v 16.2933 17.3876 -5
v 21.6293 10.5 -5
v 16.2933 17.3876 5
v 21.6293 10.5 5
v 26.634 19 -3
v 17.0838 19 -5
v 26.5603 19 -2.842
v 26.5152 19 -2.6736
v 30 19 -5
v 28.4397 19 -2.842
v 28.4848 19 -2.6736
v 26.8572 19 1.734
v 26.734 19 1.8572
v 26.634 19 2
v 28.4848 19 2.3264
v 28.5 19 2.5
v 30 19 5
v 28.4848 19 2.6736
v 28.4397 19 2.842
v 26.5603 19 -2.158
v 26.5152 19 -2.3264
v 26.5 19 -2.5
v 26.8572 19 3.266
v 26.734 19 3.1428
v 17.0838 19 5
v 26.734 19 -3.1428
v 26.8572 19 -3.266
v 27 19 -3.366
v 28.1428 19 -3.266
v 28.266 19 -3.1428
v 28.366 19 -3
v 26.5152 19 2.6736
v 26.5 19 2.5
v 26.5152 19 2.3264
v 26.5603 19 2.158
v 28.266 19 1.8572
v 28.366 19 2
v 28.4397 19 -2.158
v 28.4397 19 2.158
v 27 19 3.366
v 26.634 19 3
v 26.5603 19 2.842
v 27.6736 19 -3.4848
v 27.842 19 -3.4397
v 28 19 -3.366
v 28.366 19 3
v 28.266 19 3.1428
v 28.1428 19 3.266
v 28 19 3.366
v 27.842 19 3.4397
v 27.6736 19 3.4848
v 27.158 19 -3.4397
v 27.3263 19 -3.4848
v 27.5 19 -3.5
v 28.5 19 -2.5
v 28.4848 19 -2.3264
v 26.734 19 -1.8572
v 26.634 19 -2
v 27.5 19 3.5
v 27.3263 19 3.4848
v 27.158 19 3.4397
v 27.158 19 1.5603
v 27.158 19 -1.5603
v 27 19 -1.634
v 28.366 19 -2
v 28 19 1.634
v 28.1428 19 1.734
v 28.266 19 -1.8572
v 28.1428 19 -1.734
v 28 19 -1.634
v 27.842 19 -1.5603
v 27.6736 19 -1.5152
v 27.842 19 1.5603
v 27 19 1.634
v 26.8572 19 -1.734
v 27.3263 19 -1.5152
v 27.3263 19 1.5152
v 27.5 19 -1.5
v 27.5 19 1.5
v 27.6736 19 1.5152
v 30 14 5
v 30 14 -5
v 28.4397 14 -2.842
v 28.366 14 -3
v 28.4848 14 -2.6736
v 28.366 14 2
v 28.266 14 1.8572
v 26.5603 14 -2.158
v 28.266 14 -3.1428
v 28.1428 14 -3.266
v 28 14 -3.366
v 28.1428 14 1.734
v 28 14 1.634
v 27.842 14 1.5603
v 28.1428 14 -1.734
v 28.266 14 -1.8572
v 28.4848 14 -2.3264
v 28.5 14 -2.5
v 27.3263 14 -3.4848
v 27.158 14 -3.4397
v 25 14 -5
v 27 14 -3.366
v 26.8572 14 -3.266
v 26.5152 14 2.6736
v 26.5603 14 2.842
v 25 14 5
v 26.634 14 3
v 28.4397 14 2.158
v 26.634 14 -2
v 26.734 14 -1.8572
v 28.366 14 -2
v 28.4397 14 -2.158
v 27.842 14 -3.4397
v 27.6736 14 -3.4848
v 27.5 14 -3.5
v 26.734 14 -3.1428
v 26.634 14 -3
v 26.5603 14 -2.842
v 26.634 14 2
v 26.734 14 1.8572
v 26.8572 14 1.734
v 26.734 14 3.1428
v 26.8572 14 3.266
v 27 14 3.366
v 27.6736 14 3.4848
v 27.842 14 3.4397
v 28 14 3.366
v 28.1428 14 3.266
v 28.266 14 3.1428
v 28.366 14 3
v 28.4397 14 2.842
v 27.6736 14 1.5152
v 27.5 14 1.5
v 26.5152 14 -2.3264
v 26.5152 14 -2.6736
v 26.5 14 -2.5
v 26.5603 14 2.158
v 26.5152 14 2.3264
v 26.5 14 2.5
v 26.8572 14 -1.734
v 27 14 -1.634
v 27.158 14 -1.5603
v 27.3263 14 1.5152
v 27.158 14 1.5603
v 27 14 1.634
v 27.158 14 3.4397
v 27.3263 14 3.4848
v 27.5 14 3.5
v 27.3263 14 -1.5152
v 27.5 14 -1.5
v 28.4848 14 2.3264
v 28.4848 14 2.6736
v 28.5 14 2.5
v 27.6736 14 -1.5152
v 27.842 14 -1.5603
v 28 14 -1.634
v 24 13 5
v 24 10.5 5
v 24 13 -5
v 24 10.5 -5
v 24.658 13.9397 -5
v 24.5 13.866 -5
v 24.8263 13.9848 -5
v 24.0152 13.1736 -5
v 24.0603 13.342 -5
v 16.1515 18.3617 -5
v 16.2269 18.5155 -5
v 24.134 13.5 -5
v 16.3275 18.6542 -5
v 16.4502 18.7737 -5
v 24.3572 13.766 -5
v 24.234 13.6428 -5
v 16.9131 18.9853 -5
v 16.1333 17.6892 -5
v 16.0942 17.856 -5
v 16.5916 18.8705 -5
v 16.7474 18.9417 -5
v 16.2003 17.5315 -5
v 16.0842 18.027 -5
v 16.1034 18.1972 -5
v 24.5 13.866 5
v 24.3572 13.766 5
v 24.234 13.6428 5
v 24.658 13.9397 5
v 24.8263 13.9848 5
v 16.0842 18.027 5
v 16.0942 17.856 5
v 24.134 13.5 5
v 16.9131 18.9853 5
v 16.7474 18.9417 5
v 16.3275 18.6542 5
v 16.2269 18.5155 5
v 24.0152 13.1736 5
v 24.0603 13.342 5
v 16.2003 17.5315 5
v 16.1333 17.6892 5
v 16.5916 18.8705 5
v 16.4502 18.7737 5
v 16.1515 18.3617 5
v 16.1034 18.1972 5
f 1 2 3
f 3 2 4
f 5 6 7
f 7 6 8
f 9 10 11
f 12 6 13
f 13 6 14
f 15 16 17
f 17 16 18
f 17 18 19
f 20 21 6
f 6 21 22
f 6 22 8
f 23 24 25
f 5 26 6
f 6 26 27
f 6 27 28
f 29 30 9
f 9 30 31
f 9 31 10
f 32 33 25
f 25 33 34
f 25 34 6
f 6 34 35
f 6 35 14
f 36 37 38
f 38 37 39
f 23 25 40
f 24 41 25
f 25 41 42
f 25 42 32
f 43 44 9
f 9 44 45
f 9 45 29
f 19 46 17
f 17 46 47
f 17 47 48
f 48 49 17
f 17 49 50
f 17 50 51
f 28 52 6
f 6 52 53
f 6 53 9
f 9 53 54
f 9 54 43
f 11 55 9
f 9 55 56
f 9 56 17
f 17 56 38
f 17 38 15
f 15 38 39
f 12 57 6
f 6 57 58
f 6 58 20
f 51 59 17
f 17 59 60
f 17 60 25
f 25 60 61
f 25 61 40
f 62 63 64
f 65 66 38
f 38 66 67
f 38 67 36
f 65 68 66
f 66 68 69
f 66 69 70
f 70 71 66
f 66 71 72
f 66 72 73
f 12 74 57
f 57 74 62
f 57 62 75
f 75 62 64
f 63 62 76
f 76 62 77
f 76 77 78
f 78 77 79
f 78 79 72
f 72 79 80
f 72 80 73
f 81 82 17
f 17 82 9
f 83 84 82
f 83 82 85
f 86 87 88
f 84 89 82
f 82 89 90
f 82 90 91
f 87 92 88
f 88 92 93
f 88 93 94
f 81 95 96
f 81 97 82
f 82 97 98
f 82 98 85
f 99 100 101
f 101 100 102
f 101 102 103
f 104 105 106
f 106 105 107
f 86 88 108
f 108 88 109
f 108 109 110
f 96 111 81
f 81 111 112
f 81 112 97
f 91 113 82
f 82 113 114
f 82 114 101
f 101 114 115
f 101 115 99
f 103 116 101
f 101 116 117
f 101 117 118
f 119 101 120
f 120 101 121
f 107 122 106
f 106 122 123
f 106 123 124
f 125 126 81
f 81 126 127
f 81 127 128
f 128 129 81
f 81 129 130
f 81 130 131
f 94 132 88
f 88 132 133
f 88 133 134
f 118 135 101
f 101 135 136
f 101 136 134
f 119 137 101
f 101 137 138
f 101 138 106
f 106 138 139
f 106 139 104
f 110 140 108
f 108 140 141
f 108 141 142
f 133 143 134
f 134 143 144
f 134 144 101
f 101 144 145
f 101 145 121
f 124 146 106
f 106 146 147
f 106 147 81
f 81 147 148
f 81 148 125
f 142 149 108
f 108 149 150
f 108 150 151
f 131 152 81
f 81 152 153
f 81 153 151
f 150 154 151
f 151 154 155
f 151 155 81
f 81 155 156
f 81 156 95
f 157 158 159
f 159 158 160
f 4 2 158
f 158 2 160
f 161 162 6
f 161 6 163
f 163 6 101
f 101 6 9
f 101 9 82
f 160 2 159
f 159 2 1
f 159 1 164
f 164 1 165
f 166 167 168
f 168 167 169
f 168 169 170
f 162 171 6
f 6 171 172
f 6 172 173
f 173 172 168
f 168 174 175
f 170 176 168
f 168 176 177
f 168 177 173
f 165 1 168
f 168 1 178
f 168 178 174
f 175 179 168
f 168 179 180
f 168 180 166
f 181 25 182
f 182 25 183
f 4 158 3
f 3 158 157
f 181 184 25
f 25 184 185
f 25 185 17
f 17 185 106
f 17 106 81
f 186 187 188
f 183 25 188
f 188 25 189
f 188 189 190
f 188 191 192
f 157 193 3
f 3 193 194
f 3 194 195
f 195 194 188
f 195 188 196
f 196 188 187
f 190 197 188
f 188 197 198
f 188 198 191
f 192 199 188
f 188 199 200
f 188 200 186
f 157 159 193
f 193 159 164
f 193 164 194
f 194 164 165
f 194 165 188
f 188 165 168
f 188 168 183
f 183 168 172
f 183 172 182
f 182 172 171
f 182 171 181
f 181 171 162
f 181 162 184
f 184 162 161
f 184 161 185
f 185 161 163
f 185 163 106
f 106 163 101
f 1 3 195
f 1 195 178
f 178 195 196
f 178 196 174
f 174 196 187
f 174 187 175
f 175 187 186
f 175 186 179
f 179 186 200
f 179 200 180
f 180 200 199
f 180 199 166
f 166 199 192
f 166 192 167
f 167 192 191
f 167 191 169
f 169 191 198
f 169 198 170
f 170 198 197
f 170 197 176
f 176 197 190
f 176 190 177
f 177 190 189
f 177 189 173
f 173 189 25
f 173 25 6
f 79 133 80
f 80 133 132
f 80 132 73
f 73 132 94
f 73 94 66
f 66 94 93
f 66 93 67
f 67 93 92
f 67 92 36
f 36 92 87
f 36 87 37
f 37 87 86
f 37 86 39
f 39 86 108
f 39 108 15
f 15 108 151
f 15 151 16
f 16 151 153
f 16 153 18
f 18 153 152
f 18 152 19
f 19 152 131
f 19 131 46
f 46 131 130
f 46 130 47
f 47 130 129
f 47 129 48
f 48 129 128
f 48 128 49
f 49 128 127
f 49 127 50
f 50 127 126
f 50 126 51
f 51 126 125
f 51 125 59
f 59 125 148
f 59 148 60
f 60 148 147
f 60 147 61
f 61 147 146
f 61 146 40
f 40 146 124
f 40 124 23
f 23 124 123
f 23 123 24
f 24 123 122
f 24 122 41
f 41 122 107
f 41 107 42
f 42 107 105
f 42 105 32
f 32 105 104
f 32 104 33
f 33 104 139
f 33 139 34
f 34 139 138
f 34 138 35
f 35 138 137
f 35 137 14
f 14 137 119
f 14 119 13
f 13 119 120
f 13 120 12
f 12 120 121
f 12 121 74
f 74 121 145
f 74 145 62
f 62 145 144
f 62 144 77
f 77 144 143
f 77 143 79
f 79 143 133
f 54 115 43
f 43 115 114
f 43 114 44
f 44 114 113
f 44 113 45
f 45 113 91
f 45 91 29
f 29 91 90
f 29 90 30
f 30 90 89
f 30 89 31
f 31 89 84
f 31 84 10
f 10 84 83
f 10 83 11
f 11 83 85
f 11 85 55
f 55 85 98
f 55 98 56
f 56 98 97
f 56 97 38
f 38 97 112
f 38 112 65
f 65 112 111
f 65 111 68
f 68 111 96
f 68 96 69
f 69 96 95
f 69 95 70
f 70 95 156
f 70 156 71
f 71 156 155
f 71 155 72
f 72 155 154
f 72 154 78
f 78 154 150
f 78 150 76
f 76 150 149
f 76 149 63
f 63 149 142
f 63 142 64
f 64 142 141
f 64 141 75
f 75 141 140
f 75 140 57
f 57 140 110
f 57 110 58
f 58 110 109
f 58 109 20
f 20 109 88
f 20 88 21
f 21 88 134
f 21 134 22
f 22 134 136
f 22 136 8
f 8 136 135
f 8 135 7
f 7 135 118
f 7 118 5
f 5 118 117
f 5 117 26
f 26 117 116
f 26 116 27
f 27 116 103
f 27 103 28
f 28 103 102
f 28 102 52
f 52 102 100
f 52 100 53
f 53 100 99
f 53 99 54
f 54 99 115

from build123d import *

# Parameters (mm, degrees)
EXTRUDE_1_DEPTH      = 5
EXTRUDE_1_DEPTH_BACK = 5
FILLET_1_R           = 1
MM_CLEARANCE_1_D     = 2


with BuildPart() as part:
    # 草图2 → 凸台-拉伸1 (new, two sides: drawn at the far end of the back side and taken through both)
    with BuildSketch(Plane.XY.offset(-EXTRUDE_1_DEPTH_BACK)):
        Polygon((15.044070129, 19), (30, 19), (30, 14), (24, 14), (24, 10.5), (21.629319922, 10.5), align=None)
    extrude(amount=EXTRUDE_1_DEPTH + EXTRUDE_1_DEPTH_BACK)

    # 圆角1
    fillet_1_edges = [part.edges().sort_by_distance(p)[0] for p in [
        (24, 14, 0),
        (15.044070129, 19, 0),
    ]]
    fillet(fillet_1_edges, radius=FILLET_1_R)

    # 大小mm Clearance 暗销孔1 (through all)
    with Locations(Plane(origin=(0, 14, 0), x_dir=(-1, 0, 0), z_dir=(0, -1, 0))):
        with Locations((-27.5, 2.499999967), (-27.5, -2.500000033)):
            Hole(MM_CLEARANCE_1_D / 2)


solid = part.part
